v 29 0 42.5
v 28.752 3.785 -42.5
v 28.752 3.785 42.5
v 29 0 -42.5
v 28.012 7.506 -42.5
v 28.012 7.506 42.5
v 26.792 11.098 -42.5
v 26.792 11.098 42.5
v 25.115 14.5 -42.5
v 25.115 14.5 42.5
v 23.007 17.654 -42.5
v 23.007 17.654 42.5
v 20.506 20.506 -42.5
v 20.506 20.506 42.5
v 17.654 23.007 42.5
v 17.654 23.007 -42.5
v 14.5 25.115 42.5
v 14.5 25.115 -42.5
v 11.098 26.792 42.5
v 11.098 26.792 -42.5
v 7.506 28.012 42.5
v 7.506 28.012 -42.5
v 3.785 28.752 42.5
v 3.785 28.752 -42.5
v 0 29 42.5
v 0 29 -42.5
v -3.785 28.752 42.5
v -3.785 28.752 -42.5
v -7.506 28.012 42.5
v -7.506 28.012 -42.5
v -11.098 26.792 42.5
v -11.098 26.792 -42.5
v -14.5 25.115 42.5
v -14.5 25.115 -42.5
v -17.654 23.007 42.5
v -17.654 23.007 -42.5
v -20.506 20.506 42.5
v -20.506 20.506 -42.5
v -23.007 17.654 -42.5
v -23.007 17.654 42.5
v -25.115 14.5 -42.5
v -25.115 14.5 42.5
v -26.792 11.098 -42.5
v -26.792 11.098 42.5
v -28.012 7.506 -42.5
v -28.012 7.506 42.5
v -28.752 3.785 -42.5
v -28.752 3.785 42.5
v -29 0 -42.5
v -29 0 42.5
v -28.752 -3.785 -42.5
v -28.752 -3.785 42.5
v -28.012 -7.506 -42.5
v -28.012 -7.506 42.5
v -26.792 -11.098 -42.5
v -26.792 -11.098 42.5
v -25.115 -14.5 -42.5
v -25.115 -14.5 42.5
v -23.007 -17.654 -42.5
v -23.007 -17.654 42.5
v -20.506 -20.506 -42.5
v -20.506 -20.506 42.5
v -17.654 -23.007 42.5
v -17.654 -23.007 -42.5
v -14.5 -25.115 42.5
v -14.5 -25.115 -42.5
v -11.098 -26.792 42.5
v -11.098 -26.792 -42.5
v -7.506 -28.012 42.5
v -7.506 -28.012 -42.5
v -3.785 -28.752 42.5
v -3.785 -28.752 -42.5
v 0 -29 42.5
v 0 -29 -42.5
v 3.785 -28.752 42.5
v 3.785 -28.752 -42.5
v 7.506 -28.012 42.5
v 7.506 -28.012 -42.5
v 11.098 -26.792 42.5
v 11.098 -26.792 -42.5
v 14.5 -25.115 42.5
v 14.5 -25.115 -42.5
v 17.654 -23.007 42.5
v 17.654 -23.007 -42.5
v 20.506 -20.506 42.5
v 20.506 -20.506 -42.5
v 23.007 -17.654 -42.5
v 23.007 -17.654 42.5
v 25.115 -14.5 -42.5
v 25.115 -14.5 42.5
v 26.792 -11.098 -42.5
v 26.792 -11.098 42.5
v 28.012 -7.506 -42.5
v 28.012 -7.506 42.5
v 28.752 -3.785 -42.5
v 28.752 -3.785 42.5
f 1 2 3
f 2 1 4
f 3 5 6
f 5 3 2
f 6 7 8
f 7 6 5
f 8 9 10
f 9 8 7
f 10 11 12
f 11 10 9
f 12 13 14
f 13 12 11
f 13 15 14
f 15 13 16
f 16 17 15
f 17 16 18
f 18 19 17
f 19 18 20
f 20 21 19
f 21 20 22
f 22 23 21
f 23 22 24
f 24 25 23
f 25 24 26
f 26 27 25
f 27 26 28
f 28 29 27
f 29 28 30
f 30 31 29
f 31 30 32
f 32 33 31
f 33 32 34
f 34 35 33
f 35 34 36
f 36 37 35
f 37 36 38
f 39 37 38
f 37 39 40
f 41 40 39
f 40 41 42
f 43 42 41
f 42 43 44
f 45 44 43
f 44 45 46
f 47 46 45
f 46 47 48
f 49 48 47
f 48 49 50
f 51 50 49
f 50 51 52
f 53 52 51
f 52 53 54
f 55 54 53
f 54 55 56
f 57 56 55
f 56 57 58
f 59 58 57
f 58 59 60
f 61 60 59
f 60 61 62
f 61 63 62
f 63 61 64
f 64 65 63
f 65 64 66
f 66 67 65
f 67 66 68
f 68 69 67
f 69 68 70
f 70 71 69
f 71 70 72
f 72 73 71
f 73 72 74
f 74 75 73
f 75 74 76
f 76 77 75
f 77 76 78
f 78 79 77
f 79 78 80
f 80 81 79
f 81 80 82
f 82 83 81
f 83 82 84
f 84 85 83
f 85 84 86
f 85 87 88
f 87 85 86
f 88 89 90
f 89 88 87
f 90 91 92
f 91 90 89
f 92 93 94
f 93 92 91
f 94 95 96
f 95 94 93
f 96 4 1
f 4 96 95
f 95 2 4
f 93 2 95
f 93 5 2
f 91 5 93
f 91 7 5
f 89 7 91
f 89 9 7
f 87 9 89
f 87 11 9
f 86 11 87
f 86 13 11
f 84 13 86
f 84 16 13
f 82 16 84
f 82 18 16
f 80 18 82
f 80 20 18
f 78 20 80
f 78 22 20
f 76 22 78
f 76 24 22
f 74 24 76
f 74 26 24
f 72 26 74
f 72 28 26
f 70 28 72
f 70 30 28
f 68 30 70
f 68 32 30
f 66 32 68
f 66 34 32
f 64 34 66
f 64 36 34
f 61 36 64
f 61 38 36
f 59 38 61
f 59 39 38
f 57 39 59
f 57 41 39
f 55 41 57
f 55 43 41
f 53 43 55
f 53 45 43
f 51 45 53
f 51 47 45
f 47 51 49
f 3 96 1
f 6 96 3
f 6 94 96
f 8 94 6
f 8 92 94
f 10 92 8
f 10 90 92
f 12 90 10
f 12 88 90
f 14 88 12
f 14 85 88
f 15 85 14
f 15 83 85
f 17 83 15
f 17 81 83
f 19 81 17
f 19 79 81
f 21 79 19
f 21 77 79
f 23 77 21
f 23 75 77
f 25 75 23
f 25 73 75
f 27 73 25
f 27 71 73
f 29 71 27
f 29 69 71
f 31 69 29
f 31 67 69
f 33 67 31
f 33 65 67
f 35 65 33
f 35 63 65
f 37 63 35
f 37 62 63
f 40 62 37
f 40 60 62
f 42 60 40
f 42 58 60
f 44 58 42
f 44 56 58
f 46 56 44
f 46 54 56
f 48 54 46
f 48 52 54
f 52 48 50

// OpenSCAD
// ========================================
// a cylinder with radius 29 mm and height 85 mm
// NeuroCAD canonical IR; dimensions are millimetres
// ========================================
$fn = 48;

cylinder(r=29, h=85, center=true);
